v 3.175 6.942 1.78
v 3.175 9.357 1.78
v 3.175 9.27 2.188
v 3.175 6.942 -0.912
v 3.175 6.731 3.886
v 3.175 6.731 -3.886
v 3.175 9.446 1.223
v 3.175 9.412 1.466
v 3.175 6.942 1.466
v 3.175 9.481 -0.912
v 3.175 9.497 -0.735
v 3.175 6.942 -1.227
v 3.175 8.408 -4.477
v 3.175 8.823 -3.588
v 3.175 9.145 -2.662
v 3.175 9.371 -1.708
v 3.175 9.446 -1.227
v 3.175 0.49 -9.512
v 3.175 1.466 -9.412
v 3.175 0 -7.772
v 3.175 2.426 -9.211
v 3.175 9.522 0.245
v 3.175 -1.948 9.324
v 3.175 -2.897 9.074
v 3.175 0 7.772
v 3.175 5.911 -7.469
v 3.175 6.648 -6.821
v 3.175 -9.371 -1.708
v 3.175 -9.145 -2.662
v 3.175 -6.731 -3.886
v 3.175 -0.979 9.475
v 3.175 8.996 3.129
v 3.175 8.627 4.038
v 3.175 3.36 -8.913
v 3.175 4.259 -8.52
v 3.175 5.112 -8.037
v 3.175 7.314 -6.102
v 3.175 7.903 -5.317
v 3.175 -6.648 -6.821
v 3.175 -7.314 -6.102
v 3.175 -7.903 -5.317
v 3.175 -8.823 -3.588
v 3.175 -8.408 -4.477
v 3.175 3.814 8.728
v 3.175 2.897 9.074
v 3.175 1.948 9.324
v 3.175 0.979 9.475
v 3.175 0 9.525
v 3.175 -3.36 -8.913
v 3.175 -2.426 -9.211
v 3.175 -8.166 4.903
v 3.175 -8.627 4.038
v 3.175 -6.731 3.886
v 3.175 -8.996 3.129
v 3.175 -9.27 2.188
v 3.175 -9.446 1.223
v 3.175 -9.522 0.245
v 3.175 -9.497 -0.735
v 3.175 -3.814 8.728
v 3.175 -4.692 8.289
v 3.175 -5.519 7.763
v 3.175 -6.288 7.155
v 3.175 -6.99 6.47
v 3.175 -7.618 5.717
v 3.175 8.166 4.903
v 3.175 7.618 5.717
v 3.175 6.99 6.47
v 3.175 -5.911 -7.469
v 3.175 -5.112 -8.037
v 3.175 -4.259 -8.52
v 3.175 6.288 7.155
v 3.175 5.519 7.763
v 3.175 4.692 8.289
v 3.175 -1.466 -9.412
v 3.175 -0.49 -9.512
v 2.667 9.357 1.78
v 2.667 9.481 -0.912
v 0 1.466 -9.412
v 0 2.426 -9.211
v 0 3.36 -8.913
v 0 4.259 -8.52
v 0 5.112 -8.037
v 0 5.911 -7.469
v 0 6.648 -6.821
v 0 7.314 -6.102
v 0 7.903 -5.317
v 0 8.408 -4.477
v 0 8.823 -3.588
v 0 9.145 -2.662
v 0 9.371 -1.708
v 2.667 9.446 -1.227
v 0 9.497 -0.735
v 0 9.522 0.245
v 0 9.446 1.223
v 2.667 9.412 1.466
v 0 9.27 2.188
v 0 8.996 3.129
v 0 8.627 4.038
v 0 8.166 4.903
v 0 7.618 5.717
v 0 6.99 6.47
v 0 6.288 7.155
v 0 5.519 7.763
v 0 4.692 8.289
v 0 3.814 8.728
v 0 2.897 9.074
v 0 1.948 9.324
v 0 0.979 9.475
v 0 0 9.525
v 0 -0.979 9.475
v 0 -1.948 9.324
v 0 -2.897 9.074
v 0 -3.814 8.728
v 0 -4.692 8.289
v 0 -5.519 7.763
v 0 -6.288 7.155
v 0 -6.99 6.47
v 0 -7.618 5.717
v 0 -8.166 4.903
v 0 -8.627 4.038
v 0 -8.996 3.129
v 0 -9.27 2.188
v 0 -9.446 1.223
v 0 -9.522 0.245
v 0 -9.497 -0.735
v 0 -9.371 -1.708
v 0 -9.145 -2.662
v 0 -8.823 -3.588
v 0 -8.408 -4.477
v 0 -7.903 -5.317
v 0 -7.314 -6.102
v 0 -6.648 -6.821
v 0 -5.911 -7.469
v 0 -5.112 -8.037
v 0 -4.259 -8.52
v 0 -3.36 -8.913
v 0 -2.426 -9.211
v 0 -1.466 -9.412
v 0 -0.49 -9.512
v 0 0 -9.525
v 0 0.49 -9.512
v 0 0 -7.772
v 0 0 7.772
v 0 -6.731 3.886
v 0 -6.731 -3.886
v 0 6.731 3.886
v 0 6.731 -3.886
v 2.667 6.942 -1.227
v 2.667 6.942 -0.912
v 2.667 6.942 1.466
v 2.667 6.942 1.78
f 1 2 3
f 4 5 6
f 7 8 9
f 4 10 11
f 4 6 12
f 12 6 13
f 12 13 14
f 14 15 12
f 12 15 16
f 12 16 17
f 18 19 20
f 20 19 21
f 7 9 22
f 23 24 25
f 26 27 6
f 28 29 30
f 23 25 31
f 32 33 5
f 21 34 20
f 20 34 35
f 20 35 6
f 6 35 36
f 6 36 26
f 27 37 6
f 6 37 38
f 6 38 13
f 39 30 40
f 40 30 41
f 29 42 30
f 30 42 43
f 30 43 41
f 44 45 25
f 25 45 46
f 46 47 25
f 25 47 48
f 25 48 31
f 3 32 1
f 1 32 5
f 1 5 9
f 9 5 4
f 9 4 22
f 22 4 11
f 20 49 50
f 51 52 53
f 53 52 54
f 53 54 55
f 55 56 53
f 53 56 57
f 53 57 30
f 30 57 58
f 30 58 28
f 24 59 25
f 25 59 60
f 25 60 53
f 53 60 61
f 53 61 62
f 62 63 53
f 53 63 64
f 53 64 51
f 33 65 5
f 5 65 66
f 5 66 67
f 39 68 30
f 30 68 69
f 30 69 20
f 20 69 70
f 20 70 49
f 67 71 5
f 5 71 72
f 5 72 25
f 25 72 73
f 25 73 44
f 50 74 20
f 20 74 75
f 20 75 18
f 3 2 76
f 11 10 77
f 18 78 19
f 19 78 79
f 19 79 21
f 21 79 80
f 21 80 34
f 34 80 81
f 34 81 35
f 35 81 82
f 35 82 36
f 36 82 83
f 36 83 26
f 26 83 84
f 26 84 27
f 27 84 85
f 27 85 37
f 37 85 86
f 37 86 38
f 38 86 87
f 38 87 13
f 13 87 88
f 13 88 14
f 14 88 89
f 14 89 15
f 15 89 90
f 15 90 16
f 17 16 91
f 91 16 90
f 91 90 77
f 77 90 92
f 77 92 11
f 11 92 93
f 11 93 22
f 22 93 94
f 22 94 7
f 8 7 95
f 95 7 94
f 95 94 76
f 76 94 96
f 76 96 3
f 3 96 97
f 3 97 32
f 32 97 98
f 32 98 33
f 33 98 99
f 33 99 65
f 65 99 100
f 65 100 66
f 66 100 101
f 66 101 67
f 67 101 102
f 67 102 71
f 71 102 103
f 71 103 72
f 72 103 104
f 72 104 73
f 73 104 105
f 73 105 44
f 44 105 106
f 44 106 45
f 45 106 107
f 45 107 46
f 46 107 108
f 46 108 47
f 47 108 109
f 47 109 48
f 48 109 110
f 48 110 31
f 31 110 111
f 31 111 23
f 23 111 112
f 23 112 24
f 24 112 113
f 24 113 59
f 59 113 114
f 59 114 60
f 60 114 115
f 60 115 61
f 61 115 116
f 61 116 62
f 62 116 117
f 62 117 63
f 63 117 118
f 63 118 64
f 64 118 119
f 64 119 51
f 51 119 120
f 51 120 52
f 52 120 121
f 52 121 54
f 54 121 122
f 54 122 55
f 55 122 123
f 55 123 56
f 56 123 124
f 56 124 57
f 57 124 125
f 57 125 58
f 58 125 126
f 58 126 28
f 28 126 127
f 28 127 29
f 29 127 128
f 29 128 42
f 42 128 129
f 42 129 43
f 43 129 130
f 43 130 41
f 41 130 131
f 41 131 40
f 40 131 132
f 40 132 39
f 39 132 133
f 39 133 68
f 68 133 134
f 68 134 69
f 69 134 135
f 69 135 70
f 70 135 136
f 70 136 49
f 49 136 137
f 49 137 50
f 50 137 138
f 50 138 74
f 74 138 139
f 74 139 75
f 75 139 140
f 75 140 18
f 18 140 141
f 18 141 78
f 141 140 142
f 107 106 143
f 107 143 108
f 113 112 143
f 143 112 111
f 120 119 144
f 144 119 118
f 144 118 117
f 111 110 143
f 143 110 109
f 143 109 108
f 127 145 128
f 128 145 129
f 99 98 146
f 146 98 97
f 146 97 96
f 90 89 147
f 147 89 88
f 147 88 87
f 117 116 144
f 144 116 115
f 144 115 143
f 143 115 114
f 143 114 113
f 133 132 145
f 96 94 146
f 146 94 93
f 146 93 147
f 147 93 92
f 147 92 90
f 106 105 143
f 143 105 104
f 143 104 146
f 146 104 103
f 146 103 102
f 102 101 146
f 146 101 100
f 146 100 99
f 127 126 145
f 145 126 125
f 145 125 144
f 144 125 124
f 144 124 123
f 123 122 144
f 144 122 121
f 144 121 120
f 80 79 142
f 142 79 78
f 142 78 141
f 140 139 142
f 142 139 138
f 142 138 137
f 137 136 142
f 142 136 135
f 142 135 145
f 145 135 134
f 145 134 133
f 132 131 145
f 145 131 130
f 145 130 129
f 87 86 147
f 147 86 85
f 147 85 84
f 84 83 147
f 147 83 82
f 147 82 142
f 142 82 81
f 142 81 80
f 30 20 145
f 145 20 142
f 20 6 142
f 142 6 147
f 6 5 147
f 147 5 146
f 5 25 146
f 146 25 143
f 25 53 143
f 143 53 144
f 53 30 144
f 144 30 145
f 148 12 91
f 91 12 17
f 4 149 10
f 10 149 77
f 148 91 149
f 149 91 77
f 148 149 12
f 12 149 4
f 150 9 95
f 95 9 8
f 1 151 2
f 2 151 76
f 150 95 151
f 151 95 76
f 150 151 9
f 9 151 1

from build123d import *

# Parameters (mm, degrees)
SKETCH1_R           = 9.525
BOSS_EXTRUDE1_DEPTH = 3.175
CUT_EXTRUDE1_DEPTH  = 0.508


with BuildPart() as part:
    # Sketch1 → Boss-Extrude1 (new body)
    with BuildSketch(Plane(origin=(0, 0, 0), x_dir=(0, 0, -1), z_dir=(1, 0, 0))):
        Circle(SKETCH1_R)
        Polygon((7.772289324, 0), (3.886144662, 6.731), (-3.886144662, 6.731), (-7.772289324, 0), (-3.886144662, -6.731), (3.886144662, -6.731), align=None, mode=Mode.SUBTRACT)
    extrude(amount=BOSS_EXTRUDE1_DEPTH)

    # Sketch2 → Cut-Extrude1 (cut)
    with BuildSketch(Plane(origin=(3.175, 0, 0), x_dir=(0, 0, -1), z_dir=(1, 0, 0))):
        Polygon((-2.112938805, 10.442477423), (-1.465803389, 10.442477423), (-1.465803389, 6.942477423), (-1.779905953, 6.942477423), (-1.779905953, 10.083503064), (-2.318367491, 10.083503064), align=None)
        Polygon((0.579368887, 10.442477423), (1.226504304, 10.442477423), (1.226504304, 6.942477423), (0.91240174, 6.942477423), (0.91240174, 10.083503064), (0.373940201, 10.083503064), align=None)
    extrude(amount=-CUT_EXTRUDE1_DEPTH, mode=Mode.SUBTRACT)


solid = part.part
